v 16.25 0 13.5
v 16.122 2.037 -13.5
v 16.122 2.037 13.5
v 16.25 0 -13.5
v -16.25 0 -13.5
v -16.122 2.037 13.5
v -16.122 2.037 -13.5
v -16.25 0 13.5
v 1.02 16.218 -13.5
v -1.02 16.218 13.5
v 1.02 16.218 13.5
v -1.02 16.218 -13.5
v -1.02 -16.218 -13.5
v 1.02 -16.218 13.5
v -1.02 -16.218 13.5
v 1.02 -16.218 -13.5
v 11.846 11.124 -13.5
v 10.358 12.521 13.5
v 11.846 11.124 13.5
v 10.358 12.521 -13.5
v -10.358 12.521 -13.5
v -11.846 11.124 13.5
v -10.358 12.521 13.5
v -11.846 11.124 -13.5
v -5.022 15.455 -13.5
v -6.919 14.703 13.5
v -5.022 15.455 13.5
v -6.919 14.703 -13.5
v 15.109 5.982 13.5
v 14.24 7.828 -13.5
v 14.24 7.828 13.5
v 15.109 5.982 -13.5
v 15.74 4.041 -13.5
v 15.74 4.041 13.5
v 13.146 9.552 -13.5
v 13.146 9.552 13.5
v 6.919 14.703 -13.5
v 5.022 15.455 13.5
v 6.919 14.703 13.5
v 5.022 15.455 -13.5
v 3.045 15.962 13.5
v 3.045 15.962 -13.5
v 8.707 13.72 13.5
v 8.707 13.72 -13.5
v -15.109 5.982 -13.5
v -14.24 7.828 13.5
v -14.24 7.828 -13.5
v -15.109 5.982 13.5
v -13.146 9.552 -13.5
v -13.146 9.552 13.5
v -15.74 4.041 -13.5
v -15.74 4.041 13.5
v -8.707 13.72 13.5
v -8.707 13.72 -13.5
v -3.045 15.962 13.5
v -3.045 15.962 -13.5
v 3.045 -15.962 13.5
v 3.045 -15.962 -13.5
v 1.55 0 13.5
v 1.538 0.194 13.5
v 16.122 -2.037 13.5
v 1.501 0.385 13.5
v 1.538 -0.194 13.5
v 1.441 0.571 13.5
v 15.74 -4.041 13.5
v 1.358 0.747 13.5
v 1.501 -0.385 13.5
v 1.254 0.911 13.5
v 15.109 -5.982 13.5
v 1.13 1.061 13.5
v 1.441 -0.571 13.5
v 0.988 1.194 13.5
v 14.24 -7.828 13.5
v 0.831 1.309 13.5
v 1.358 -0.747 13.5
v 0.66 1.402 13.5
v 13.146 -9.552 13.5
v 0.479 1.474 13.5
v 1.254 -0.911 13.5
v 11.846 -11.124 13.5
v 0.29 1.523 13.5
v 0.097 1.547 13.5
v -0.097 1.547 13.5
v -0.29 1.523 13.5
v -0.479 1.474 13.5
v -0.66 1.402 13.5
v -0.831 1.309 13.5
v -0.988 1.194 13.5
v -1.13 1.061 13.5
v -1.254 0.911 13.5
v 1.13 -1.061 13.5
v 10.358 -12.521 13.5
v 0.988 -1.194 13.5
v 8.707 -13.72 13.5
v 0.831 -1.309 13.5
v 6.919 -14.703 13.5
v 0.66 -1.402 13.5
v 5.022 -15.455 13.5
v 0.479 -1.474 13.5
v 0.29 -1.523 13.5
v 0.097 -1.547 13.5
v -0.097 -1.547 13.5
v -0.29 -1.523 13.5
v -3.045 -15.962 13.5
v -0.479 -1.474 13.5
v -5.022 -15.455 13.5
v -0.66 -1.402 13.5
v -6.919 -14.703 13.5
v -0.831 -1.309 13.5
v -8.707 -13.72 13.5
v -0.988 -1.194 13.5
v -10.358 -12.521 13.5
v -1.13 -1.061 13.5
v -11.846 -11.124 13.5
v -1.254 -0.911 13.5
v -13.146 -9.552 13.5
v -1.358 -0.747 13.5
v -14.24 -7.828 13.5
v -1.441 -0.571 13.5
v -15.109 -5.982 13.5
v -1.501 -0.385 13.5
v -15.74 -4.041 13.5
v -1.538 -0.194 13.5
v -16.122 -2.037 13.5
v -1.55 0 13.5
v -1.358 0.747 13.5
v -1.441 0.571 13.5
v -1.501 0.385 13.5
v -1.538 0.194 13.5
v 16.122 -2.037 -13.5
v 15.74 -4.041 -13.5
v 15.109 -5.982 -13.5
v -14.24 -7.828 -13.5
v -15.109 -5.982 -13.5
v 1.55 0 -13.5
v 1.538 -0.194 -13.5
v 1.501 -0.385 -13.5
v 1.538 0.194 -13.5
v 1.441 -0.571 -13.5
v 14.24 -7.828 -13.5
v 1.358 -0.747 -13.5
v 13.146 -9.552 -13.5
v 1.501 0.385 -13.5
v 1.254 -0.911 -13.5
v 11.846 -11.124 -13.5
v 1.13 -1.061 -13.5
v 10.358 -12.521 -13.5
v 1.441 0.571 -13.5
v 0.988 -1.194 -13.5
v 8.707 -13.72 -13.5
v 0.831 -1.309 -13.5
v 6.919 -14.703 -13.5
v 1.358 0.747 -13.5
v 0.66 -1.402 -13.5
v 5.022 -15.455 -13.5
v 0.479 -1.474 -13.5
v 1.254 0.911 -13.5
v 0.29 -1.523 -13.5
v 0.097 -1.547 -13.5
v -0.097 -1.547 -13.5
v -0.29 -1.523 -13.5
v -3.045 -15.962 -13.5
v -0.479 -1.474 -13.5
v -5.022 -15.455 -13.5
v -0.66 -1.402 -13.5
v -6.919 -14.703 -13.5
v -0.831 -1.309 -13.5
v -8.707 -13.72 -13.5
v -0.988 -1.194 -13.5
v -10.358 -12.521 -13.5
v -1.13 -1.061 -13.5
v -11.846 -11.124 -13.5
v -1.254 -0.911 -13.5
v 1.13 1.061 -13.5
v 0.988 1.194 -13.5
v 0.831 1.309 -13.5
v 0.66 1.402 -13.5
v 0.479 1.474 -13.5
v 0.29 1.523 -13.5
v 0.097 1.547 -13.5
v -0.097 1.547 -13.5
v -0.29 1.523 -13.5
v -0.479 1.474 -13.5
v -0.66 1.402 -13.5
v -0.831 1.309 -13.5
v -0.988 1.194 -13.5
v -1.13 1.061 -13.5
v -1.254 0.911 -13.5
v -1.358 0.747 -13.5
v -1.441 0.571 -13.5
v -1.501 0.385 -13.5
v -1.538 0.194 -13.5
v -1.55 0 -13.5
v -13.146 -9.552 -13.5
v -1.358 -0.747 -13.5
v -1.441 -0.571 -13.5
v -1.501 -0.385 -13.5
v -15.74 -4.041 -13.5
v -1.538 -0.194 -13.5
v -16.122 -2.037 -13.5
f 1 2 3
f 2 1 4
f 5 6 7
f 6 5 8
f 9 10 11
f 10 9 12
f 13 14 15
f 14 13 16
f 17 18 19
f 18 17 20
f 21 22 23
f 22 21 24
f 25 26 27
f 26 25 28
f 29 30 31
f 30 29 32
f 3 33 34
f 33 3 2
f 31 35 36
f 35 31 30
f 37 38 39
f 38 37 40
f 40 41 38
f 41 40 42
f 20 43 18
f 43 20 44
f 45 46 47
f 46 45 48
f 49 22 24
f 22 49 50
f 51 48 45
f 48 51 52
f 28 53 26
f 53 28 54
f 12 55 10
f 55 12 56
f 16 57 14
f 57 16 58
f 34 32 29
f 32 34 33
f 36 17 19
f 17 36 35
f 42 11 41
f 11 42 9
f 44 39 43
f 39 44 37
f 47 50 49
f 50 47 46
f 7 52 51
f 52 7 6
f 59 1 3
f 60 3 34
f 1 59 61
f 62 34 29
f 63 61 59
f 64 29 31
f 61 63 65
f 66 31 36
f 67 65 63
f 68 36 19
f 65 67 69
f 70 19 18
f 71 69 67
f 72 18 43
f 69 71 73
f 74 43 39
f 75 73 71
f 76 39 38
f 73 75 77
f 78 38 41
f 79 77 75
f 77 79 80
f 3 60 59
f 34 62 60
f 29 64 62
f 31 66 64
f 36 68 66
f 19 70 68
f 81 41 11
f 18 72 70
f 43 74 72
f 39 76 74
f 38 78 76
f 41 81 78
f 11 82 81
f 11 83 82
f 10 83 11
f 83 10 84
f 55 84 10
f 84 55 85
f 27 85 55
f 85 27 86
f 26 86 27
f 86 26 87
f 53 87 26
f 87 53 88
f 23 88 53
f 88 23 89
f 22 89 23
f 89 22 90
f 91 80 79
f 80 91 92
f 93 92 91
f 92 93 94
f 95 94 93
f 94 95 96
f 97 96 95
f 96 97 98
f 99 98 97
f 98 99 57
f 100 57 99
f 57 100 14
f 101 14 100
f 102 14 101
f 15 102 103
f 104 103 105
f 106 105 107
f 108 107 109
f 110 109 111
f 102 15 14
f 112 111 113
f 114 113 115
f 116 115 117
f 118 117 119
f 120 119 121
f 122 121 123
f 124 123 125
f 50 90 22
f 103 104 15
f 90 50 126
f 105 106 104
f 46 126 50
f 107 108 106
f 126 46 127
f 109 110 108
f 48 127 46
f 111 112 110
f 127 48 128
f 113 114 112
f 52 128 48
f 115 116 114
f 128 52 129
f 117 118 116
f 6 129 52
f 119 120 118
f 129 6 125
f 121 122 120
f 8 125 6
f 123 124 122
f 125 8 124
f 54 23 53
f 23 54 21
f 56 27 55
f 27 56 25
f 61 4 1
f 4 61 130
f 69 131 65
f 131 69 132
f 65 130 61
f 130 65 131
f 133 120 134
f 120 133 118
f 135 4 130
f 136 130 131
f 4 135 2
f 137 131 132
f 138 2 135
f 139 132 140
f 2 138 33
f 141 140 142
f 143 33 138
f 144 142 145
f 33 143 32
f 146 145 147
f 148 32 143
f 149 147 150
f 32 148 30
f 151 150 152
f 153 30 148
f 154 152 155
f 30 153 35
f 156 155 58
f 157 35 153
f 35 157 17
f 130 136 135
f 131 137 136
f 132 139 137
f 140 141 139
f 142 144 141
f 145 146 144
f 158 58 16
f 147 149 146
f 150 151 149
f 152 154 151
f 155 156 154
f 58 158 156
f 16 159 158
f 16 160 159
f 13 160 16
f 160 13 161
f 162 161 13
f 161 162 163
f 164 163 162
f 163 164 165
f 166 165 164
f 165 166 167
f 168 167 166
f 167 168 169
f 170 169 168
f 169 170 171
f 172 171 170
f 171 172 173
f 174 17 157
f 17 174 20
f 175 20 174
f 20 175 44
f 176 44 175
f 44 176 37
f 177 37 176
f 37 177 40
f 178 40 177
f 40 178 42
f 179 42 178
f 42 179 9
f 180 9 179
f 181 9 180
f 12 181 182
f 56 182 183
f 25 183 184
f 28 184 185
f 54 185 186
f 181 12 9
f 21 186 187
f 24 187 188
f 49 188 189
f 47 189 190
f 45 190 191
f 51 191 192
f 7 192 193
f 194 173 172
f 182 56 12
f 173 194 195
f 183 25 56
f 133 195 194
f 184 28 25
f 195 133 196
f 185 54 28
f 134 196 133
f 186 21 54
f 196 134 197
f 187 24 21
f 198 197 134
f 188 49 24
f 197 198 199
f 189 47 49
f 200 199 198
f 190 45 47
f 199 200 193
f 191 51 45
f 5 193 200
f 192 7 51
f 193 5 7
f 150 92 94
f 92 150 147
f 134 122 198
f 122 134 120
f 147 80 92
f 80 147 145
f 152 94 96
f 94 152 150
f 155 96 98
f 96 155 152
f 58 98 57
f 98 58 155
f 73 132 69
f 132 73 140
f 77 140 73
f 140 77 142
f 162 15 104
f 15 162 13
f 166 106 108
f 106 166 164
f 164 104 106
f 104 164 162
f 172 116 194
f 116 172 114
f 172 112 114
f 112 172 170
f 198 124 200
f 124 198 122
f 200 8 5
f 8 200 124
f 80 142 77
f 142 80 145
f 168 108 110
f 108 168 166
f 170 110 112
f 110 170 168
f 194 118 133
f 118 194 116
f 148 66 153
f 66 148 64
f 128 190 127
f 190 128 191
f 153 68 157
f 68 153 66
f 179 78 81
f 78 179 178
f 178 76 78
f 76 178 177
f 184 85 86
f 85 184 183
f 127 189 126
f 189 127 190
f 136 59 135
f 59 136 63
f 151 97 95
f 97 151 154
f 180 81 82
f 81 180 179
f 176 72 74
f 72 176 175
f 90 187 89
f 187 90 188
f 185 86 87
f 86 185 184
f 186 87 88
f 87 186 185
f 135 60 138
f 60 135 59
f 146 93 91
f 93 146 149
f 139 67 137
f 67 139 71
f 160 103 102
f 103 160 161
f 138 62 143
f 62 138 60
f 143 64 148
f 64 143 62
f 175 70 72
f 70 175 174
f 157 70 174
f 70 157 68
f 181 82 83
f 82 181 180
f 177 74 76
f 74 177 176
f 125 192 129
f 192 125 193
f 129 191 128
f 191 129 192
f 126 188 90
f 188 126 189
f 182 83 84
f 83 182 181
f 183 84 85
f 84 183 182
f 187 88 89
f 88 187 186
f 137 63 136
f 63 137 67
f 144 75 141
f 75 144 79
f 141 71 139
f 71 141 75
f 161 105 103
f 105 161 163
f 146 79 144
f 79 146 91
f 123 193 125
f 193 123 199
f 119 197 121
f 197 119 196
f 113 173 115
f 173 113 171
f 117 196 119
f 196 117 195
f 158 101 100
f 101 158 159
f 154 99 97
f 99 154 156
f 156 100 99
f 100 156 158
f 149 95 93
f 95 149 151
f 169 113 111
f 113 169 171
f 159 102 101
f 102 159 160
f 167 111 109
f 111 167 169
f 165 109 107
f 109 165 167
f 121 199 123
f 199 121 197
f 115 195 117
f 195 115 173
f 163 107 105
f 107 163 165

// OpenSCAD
$fn = 50;


difference() {
	union() {
		translate(v = [0, 0, -13.5000000000]) {
			cylinder(h = 27, r = 16.2500000000);
		}
	}
	union() {
		translate(v = [0, 0, -100.0000000000]) {
			cylinder(h = 200, r = 1.5500000000);
		}
	}
}
